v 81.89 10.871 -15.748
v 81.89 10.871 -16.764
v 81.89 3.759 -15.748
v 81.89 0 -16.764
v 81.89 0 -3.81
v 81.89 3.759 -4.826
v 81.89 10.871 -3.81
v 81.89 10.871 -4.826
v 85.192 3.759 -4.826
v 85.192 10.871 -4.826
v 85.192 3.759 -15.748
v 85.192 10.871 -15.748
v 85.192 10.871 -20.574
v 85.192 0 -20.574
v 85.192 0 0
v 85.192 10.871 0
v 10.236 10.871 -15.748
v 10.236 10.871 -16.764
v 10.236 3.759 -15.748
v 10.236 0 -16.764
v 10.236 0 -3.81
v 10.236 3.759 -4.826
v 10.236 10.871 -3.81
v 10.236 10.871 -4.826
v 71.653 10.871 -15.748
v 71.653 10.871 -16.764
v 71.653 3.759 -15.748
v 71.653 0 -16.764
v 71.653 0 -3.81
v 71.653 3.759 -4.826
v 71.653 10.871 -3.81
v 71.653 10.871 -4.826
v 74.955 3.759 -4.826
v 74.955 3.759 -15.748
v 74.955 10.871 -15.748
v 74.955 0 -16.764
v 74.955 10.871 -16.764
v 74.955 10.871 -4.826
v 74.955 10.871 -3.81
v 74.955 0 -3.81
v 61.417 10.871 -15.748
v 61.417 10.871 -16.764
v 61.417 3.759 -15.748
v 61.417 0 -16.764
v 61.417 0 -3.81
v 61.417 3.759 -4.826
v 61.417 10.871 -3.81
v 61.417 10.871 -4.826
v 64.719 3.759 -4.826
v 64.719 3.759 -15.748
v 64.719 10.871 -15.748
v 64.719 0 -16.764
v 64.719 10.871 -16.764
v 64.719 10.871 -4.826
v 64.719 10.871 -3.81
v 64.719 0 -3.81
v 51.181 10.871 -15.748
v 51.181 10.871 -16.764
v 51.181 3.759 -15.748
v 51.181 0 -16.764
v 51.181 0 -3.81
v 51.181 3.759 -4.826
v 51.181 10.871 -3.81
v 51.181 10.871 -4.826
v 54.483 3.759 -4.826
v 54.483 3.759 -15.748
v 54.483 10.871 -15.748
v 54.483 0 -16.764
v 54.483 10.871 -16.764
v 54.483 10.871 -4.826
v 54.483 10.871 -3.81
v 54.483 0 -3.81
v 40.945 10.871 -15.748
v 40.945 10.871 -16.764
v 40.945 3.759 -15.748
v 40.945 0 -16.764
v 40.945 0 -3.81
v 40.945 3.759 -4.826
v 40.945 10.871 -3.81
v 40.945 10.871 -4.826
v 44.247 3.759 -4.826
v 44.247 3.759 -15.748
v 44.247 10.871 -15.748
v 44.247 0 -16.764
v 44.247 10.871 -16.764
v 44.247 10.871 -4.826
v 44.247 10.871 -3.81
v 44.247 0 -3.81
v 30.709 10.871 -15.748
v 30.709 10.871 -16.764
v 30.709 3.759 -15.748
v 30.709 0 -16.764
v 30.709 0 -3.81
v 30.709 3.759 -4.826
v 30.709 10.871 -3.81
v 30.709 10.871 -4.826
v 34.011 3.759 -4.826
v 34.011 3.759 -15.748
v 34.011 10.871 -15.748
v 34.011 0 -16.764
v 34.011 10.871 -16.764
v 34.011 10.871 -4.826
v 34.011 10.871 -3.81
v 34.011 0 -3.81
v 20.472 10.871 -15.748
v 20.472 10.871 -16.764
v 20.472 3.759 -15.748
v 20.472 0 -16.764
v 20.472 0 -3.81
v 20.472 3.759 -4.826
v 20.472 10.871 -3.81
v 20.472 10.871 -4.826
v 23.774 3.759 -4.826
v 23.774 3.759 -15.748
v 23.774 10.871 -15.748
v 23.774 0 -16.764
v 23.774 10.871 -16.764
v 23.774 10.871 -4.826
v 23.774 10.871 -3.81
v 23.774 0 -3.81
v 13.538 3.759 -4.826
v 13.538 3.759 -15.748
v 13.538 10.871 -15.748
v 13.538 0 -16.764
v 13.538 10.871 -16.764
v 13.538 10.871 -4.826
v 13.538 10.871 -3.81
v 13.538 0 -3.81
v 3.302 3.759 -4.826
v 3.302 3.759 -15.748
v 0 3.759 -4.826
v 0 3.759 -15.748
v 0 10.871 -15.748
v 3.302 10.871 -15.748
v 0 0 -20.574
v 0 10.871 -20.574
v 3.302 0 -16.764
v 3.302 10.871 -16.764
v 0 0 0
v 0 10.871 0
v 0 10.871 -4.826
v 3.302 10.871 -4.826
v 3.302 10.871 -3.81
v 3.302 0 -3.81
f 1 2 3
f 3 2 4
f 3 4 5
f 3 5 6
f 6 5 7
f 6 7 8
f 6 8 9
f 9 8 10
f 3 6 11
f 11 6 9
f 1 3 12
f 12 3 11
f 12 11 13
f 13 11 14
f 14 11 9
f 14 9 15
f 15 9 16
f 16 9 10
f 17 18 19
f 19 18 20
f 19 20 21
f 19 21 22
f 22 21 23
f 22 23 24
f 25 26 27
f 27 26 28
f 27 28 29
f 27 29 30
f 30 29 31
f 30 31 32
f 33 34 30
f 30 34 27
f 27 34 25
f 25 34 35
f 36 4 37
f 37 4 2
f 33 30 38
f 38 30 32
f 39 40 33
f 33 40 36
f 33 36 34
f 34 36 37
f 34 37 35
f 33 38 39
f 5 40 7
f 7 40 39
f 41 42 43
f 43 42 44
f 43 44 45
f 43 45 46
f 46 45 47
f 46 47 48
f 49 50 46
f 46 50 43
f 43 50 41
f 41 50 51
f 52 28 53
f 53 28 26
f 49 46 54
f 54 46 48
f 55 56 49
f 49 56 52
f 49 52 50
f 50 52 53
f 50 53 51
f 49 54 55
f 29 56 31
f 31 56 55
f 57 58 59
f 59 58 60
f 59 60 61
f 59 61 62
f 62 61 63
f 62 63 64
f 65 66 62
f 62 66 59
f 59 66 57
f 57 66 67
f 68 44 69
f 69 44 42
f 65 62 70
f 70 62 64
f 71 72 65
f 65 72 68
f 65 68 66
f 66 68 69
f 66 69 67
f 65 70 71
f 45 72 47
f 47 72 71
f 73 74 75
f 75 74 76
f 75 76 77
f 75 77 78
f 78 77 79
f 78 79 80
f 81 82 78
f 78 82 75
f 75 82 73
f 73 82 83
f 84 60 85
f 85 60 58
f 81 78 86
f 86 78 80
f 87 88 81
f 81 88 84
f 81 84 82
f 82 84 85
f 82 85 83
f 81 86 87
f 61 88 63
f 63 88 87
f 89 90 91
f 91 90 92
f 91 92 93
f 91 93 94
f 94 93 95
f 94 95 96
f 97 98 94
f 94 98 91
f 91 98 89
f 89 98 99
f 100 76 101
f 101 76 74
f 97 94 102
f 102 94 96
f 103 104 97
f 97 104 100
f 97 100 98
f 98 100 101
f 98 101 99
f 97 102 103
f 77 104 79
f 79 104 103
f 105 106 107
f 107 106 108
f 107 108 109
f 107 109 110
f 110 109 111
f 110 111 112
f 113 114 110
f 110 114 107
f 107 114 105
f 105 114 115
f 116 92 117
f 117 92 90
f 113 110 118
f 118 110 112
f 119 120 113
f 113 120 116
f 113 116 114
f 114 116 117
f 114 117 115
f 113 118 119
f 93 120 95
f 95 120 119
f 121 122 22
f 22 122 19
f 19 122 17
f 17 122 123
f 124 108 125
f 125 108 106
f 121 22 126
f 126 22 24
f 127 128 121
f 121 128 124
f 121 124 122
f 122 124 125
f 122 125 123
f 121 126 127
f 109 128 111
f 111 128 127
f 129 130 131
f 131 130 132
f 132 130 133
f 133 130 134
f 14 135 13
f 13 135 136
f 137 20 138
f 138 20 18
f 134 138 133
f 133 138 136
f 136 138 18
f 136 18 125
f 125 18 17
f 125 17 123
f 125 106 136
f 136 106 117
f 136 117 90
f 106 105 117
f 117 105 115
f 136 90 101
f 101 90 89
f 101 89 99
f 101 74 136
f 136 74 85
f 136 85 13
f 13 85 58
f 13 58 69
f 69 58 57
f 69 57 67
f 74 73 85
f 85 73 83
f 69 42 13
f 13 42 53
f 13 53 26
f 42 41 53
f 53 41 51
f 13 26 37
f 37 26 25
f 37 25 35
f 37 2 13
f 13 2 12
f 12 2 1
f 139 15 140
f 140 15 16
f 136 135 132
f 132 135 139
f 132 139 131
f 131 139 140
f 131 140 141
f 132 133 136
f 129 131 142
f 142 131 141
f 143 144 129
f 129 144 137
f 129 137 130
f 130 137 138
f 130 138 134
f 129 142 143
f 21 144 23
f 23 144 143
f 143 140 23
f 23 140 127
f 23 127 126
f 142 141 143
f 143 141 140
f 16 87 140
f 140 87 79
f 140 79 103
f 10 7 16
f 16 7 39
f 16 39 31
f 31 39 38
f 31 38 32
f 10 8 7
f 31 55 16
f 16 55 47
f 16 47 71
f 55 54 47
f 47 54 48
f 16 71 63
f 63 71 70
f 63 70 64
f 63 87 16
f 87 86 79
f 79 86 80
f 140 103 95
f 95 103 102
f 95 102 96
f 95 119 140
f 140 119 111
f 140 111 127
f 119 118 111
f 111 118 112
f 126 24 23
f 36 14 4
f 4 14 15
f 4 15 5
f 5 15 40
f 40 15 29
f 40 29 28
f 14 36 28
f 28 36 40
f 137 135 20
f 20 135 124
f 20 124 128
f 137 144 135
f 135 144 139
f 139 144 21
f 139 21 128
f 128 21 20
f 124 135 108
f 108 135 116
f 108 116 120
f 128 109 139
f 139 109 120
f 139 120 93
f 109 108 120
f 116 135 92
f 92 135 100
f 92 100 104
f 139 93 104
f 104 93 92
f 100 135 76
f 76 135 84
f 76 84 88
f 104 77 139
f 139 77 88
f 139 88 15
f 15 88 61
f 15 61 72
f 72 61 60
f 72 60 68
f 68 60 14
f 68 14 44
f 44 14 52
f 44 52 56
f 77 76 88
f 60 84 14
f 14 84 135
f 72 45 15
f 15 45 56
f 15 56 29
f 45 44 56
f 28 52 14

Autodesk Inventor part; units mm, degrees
ref_plane "YZ Plane" through (0, 0, 0) normal (1, 0, 0) x (0, 1, 0)
ref_plane "XZ Plane" through (0, 0, 0) normal (0, 1, 0) x (-1, 0, 0)
ref_plane "XY Plane" through (0, 0, 0) normal (0, 0, 1) x (1, 0, 0)
sketch "Sketch4" plane through (0, 0, 0) normal (0, 1, 0) x (-1, 0, 0)
  line L0 (0, -20.574) -> (0, -15.748)
  line L1 (0, -15.748) -> (-3.302, -15.748)
  line L2 (-3.302, -15.748) -> (-3.302, -16.764)
  line L3 (-3.302, -16.764) -> (-10.2362, -16.764)
  line L4 (-10.2362, -16.764) -> (-10.2362, -20.574)
  line L5 (-10.2362, -20.574) -> (0, -20.574)
  line L6 (0, 0) -> (0, -4.826)
  line L7 (0, -4.826) -> (-3.302, -4.826)
  line L8 (-3.302, -4.826) -> (-3.302, -3.81)
  line L9 (-3.302, -3.81) -> (-10.2362, -3.81)
  line L10 (-10.2362, -3.81) -> (-10.2362, 0)
  line L11 (-10.2362, 0) -> (0, 0)
  dimension "d22" = 3.302
  dimension "d23" = 1.016
  dimension "d24" = 1.016
  dimension "d25" = 6.9342
  dimension "d26" = 3.81
  dimension "d27" = 20.574
  dimension "d28" = 3.81
extrude "Extrusion4" add sketch "Sketch4" along normal blind 10.8712
sketch "Sketch5" plane through (0, 0, 0) normal (0, -1, 0) x (1, 0, 0)
  line L0 (0, -15.748) -> (3.302, -15.748)
  line L1 (3.302, -15.748) -> (3.302, -4.826)
  line L2 (3.302, -4.826) -> (0, -4.826)
  line L3 (0, -4.826) -> (0, -15.748)
  line L4 (3.302, -4.826) -> (0, -4.826) projected
  line L5 (0, -15.748) -> (3.302, -15.748) projected
  line L6 (0, -20.574) -> (0, -15.748) projected
  line L7 (3.302, -15.748) -> (3.302, -16.764) projected
  point P0 (0, 0)
extrude "Extrusion5" add sketch "Sketch5" against normal blind 3.7592
pattern_linear "Rectangular Pattern2" count 8 spacing 10.2362 along (1, 0, 0) of "Extrusion4", "Extrusion5"
sketch "Sketch6" plane through (81.8896, 0, -16.764) normal (1, 0, 0) x (0, 0, -1)
  line L0 (3.81, 0) -> (-16.764, 0) projected
  line L1 (3.81, 10.8712) -> (-1.016, 10.8712) projected
  line L2 (3.81, 0) -> (3.81, 10.8712)
  line L3 (3.81, 10.8712) -> (-1.016, 10.8712)
  line L4 (-11.938, 3.7592) -> (-1.016, 3.7592) projected
  line L5 (-1.016, 10.8712) -> (-1.016, 3.7592)
  line L6 (-1.016, 3.7592) -> (-11.938, 3.7592)
  line L7 (-11.938, 3.7592) -> (-11.938, 10.8712) projected
  line L8 (-11.938, 3.7592) -> (-11.938, 10.8712)
  line L9 (-16.764, 0) -> (-16.764, 10.8712) projected
  line L10 (-11.938, 10.8712) -> (-16.764, 10.8712)
  line L11 (-16.764, 10.8712) -> (-16.764, 0)
  line L12 (3.81, 0) -> (-16.764, 0)
extrude "Extrusion6" add sketch "Sketch6" along normal blind 3.302
properties part number "LatchHolder"
